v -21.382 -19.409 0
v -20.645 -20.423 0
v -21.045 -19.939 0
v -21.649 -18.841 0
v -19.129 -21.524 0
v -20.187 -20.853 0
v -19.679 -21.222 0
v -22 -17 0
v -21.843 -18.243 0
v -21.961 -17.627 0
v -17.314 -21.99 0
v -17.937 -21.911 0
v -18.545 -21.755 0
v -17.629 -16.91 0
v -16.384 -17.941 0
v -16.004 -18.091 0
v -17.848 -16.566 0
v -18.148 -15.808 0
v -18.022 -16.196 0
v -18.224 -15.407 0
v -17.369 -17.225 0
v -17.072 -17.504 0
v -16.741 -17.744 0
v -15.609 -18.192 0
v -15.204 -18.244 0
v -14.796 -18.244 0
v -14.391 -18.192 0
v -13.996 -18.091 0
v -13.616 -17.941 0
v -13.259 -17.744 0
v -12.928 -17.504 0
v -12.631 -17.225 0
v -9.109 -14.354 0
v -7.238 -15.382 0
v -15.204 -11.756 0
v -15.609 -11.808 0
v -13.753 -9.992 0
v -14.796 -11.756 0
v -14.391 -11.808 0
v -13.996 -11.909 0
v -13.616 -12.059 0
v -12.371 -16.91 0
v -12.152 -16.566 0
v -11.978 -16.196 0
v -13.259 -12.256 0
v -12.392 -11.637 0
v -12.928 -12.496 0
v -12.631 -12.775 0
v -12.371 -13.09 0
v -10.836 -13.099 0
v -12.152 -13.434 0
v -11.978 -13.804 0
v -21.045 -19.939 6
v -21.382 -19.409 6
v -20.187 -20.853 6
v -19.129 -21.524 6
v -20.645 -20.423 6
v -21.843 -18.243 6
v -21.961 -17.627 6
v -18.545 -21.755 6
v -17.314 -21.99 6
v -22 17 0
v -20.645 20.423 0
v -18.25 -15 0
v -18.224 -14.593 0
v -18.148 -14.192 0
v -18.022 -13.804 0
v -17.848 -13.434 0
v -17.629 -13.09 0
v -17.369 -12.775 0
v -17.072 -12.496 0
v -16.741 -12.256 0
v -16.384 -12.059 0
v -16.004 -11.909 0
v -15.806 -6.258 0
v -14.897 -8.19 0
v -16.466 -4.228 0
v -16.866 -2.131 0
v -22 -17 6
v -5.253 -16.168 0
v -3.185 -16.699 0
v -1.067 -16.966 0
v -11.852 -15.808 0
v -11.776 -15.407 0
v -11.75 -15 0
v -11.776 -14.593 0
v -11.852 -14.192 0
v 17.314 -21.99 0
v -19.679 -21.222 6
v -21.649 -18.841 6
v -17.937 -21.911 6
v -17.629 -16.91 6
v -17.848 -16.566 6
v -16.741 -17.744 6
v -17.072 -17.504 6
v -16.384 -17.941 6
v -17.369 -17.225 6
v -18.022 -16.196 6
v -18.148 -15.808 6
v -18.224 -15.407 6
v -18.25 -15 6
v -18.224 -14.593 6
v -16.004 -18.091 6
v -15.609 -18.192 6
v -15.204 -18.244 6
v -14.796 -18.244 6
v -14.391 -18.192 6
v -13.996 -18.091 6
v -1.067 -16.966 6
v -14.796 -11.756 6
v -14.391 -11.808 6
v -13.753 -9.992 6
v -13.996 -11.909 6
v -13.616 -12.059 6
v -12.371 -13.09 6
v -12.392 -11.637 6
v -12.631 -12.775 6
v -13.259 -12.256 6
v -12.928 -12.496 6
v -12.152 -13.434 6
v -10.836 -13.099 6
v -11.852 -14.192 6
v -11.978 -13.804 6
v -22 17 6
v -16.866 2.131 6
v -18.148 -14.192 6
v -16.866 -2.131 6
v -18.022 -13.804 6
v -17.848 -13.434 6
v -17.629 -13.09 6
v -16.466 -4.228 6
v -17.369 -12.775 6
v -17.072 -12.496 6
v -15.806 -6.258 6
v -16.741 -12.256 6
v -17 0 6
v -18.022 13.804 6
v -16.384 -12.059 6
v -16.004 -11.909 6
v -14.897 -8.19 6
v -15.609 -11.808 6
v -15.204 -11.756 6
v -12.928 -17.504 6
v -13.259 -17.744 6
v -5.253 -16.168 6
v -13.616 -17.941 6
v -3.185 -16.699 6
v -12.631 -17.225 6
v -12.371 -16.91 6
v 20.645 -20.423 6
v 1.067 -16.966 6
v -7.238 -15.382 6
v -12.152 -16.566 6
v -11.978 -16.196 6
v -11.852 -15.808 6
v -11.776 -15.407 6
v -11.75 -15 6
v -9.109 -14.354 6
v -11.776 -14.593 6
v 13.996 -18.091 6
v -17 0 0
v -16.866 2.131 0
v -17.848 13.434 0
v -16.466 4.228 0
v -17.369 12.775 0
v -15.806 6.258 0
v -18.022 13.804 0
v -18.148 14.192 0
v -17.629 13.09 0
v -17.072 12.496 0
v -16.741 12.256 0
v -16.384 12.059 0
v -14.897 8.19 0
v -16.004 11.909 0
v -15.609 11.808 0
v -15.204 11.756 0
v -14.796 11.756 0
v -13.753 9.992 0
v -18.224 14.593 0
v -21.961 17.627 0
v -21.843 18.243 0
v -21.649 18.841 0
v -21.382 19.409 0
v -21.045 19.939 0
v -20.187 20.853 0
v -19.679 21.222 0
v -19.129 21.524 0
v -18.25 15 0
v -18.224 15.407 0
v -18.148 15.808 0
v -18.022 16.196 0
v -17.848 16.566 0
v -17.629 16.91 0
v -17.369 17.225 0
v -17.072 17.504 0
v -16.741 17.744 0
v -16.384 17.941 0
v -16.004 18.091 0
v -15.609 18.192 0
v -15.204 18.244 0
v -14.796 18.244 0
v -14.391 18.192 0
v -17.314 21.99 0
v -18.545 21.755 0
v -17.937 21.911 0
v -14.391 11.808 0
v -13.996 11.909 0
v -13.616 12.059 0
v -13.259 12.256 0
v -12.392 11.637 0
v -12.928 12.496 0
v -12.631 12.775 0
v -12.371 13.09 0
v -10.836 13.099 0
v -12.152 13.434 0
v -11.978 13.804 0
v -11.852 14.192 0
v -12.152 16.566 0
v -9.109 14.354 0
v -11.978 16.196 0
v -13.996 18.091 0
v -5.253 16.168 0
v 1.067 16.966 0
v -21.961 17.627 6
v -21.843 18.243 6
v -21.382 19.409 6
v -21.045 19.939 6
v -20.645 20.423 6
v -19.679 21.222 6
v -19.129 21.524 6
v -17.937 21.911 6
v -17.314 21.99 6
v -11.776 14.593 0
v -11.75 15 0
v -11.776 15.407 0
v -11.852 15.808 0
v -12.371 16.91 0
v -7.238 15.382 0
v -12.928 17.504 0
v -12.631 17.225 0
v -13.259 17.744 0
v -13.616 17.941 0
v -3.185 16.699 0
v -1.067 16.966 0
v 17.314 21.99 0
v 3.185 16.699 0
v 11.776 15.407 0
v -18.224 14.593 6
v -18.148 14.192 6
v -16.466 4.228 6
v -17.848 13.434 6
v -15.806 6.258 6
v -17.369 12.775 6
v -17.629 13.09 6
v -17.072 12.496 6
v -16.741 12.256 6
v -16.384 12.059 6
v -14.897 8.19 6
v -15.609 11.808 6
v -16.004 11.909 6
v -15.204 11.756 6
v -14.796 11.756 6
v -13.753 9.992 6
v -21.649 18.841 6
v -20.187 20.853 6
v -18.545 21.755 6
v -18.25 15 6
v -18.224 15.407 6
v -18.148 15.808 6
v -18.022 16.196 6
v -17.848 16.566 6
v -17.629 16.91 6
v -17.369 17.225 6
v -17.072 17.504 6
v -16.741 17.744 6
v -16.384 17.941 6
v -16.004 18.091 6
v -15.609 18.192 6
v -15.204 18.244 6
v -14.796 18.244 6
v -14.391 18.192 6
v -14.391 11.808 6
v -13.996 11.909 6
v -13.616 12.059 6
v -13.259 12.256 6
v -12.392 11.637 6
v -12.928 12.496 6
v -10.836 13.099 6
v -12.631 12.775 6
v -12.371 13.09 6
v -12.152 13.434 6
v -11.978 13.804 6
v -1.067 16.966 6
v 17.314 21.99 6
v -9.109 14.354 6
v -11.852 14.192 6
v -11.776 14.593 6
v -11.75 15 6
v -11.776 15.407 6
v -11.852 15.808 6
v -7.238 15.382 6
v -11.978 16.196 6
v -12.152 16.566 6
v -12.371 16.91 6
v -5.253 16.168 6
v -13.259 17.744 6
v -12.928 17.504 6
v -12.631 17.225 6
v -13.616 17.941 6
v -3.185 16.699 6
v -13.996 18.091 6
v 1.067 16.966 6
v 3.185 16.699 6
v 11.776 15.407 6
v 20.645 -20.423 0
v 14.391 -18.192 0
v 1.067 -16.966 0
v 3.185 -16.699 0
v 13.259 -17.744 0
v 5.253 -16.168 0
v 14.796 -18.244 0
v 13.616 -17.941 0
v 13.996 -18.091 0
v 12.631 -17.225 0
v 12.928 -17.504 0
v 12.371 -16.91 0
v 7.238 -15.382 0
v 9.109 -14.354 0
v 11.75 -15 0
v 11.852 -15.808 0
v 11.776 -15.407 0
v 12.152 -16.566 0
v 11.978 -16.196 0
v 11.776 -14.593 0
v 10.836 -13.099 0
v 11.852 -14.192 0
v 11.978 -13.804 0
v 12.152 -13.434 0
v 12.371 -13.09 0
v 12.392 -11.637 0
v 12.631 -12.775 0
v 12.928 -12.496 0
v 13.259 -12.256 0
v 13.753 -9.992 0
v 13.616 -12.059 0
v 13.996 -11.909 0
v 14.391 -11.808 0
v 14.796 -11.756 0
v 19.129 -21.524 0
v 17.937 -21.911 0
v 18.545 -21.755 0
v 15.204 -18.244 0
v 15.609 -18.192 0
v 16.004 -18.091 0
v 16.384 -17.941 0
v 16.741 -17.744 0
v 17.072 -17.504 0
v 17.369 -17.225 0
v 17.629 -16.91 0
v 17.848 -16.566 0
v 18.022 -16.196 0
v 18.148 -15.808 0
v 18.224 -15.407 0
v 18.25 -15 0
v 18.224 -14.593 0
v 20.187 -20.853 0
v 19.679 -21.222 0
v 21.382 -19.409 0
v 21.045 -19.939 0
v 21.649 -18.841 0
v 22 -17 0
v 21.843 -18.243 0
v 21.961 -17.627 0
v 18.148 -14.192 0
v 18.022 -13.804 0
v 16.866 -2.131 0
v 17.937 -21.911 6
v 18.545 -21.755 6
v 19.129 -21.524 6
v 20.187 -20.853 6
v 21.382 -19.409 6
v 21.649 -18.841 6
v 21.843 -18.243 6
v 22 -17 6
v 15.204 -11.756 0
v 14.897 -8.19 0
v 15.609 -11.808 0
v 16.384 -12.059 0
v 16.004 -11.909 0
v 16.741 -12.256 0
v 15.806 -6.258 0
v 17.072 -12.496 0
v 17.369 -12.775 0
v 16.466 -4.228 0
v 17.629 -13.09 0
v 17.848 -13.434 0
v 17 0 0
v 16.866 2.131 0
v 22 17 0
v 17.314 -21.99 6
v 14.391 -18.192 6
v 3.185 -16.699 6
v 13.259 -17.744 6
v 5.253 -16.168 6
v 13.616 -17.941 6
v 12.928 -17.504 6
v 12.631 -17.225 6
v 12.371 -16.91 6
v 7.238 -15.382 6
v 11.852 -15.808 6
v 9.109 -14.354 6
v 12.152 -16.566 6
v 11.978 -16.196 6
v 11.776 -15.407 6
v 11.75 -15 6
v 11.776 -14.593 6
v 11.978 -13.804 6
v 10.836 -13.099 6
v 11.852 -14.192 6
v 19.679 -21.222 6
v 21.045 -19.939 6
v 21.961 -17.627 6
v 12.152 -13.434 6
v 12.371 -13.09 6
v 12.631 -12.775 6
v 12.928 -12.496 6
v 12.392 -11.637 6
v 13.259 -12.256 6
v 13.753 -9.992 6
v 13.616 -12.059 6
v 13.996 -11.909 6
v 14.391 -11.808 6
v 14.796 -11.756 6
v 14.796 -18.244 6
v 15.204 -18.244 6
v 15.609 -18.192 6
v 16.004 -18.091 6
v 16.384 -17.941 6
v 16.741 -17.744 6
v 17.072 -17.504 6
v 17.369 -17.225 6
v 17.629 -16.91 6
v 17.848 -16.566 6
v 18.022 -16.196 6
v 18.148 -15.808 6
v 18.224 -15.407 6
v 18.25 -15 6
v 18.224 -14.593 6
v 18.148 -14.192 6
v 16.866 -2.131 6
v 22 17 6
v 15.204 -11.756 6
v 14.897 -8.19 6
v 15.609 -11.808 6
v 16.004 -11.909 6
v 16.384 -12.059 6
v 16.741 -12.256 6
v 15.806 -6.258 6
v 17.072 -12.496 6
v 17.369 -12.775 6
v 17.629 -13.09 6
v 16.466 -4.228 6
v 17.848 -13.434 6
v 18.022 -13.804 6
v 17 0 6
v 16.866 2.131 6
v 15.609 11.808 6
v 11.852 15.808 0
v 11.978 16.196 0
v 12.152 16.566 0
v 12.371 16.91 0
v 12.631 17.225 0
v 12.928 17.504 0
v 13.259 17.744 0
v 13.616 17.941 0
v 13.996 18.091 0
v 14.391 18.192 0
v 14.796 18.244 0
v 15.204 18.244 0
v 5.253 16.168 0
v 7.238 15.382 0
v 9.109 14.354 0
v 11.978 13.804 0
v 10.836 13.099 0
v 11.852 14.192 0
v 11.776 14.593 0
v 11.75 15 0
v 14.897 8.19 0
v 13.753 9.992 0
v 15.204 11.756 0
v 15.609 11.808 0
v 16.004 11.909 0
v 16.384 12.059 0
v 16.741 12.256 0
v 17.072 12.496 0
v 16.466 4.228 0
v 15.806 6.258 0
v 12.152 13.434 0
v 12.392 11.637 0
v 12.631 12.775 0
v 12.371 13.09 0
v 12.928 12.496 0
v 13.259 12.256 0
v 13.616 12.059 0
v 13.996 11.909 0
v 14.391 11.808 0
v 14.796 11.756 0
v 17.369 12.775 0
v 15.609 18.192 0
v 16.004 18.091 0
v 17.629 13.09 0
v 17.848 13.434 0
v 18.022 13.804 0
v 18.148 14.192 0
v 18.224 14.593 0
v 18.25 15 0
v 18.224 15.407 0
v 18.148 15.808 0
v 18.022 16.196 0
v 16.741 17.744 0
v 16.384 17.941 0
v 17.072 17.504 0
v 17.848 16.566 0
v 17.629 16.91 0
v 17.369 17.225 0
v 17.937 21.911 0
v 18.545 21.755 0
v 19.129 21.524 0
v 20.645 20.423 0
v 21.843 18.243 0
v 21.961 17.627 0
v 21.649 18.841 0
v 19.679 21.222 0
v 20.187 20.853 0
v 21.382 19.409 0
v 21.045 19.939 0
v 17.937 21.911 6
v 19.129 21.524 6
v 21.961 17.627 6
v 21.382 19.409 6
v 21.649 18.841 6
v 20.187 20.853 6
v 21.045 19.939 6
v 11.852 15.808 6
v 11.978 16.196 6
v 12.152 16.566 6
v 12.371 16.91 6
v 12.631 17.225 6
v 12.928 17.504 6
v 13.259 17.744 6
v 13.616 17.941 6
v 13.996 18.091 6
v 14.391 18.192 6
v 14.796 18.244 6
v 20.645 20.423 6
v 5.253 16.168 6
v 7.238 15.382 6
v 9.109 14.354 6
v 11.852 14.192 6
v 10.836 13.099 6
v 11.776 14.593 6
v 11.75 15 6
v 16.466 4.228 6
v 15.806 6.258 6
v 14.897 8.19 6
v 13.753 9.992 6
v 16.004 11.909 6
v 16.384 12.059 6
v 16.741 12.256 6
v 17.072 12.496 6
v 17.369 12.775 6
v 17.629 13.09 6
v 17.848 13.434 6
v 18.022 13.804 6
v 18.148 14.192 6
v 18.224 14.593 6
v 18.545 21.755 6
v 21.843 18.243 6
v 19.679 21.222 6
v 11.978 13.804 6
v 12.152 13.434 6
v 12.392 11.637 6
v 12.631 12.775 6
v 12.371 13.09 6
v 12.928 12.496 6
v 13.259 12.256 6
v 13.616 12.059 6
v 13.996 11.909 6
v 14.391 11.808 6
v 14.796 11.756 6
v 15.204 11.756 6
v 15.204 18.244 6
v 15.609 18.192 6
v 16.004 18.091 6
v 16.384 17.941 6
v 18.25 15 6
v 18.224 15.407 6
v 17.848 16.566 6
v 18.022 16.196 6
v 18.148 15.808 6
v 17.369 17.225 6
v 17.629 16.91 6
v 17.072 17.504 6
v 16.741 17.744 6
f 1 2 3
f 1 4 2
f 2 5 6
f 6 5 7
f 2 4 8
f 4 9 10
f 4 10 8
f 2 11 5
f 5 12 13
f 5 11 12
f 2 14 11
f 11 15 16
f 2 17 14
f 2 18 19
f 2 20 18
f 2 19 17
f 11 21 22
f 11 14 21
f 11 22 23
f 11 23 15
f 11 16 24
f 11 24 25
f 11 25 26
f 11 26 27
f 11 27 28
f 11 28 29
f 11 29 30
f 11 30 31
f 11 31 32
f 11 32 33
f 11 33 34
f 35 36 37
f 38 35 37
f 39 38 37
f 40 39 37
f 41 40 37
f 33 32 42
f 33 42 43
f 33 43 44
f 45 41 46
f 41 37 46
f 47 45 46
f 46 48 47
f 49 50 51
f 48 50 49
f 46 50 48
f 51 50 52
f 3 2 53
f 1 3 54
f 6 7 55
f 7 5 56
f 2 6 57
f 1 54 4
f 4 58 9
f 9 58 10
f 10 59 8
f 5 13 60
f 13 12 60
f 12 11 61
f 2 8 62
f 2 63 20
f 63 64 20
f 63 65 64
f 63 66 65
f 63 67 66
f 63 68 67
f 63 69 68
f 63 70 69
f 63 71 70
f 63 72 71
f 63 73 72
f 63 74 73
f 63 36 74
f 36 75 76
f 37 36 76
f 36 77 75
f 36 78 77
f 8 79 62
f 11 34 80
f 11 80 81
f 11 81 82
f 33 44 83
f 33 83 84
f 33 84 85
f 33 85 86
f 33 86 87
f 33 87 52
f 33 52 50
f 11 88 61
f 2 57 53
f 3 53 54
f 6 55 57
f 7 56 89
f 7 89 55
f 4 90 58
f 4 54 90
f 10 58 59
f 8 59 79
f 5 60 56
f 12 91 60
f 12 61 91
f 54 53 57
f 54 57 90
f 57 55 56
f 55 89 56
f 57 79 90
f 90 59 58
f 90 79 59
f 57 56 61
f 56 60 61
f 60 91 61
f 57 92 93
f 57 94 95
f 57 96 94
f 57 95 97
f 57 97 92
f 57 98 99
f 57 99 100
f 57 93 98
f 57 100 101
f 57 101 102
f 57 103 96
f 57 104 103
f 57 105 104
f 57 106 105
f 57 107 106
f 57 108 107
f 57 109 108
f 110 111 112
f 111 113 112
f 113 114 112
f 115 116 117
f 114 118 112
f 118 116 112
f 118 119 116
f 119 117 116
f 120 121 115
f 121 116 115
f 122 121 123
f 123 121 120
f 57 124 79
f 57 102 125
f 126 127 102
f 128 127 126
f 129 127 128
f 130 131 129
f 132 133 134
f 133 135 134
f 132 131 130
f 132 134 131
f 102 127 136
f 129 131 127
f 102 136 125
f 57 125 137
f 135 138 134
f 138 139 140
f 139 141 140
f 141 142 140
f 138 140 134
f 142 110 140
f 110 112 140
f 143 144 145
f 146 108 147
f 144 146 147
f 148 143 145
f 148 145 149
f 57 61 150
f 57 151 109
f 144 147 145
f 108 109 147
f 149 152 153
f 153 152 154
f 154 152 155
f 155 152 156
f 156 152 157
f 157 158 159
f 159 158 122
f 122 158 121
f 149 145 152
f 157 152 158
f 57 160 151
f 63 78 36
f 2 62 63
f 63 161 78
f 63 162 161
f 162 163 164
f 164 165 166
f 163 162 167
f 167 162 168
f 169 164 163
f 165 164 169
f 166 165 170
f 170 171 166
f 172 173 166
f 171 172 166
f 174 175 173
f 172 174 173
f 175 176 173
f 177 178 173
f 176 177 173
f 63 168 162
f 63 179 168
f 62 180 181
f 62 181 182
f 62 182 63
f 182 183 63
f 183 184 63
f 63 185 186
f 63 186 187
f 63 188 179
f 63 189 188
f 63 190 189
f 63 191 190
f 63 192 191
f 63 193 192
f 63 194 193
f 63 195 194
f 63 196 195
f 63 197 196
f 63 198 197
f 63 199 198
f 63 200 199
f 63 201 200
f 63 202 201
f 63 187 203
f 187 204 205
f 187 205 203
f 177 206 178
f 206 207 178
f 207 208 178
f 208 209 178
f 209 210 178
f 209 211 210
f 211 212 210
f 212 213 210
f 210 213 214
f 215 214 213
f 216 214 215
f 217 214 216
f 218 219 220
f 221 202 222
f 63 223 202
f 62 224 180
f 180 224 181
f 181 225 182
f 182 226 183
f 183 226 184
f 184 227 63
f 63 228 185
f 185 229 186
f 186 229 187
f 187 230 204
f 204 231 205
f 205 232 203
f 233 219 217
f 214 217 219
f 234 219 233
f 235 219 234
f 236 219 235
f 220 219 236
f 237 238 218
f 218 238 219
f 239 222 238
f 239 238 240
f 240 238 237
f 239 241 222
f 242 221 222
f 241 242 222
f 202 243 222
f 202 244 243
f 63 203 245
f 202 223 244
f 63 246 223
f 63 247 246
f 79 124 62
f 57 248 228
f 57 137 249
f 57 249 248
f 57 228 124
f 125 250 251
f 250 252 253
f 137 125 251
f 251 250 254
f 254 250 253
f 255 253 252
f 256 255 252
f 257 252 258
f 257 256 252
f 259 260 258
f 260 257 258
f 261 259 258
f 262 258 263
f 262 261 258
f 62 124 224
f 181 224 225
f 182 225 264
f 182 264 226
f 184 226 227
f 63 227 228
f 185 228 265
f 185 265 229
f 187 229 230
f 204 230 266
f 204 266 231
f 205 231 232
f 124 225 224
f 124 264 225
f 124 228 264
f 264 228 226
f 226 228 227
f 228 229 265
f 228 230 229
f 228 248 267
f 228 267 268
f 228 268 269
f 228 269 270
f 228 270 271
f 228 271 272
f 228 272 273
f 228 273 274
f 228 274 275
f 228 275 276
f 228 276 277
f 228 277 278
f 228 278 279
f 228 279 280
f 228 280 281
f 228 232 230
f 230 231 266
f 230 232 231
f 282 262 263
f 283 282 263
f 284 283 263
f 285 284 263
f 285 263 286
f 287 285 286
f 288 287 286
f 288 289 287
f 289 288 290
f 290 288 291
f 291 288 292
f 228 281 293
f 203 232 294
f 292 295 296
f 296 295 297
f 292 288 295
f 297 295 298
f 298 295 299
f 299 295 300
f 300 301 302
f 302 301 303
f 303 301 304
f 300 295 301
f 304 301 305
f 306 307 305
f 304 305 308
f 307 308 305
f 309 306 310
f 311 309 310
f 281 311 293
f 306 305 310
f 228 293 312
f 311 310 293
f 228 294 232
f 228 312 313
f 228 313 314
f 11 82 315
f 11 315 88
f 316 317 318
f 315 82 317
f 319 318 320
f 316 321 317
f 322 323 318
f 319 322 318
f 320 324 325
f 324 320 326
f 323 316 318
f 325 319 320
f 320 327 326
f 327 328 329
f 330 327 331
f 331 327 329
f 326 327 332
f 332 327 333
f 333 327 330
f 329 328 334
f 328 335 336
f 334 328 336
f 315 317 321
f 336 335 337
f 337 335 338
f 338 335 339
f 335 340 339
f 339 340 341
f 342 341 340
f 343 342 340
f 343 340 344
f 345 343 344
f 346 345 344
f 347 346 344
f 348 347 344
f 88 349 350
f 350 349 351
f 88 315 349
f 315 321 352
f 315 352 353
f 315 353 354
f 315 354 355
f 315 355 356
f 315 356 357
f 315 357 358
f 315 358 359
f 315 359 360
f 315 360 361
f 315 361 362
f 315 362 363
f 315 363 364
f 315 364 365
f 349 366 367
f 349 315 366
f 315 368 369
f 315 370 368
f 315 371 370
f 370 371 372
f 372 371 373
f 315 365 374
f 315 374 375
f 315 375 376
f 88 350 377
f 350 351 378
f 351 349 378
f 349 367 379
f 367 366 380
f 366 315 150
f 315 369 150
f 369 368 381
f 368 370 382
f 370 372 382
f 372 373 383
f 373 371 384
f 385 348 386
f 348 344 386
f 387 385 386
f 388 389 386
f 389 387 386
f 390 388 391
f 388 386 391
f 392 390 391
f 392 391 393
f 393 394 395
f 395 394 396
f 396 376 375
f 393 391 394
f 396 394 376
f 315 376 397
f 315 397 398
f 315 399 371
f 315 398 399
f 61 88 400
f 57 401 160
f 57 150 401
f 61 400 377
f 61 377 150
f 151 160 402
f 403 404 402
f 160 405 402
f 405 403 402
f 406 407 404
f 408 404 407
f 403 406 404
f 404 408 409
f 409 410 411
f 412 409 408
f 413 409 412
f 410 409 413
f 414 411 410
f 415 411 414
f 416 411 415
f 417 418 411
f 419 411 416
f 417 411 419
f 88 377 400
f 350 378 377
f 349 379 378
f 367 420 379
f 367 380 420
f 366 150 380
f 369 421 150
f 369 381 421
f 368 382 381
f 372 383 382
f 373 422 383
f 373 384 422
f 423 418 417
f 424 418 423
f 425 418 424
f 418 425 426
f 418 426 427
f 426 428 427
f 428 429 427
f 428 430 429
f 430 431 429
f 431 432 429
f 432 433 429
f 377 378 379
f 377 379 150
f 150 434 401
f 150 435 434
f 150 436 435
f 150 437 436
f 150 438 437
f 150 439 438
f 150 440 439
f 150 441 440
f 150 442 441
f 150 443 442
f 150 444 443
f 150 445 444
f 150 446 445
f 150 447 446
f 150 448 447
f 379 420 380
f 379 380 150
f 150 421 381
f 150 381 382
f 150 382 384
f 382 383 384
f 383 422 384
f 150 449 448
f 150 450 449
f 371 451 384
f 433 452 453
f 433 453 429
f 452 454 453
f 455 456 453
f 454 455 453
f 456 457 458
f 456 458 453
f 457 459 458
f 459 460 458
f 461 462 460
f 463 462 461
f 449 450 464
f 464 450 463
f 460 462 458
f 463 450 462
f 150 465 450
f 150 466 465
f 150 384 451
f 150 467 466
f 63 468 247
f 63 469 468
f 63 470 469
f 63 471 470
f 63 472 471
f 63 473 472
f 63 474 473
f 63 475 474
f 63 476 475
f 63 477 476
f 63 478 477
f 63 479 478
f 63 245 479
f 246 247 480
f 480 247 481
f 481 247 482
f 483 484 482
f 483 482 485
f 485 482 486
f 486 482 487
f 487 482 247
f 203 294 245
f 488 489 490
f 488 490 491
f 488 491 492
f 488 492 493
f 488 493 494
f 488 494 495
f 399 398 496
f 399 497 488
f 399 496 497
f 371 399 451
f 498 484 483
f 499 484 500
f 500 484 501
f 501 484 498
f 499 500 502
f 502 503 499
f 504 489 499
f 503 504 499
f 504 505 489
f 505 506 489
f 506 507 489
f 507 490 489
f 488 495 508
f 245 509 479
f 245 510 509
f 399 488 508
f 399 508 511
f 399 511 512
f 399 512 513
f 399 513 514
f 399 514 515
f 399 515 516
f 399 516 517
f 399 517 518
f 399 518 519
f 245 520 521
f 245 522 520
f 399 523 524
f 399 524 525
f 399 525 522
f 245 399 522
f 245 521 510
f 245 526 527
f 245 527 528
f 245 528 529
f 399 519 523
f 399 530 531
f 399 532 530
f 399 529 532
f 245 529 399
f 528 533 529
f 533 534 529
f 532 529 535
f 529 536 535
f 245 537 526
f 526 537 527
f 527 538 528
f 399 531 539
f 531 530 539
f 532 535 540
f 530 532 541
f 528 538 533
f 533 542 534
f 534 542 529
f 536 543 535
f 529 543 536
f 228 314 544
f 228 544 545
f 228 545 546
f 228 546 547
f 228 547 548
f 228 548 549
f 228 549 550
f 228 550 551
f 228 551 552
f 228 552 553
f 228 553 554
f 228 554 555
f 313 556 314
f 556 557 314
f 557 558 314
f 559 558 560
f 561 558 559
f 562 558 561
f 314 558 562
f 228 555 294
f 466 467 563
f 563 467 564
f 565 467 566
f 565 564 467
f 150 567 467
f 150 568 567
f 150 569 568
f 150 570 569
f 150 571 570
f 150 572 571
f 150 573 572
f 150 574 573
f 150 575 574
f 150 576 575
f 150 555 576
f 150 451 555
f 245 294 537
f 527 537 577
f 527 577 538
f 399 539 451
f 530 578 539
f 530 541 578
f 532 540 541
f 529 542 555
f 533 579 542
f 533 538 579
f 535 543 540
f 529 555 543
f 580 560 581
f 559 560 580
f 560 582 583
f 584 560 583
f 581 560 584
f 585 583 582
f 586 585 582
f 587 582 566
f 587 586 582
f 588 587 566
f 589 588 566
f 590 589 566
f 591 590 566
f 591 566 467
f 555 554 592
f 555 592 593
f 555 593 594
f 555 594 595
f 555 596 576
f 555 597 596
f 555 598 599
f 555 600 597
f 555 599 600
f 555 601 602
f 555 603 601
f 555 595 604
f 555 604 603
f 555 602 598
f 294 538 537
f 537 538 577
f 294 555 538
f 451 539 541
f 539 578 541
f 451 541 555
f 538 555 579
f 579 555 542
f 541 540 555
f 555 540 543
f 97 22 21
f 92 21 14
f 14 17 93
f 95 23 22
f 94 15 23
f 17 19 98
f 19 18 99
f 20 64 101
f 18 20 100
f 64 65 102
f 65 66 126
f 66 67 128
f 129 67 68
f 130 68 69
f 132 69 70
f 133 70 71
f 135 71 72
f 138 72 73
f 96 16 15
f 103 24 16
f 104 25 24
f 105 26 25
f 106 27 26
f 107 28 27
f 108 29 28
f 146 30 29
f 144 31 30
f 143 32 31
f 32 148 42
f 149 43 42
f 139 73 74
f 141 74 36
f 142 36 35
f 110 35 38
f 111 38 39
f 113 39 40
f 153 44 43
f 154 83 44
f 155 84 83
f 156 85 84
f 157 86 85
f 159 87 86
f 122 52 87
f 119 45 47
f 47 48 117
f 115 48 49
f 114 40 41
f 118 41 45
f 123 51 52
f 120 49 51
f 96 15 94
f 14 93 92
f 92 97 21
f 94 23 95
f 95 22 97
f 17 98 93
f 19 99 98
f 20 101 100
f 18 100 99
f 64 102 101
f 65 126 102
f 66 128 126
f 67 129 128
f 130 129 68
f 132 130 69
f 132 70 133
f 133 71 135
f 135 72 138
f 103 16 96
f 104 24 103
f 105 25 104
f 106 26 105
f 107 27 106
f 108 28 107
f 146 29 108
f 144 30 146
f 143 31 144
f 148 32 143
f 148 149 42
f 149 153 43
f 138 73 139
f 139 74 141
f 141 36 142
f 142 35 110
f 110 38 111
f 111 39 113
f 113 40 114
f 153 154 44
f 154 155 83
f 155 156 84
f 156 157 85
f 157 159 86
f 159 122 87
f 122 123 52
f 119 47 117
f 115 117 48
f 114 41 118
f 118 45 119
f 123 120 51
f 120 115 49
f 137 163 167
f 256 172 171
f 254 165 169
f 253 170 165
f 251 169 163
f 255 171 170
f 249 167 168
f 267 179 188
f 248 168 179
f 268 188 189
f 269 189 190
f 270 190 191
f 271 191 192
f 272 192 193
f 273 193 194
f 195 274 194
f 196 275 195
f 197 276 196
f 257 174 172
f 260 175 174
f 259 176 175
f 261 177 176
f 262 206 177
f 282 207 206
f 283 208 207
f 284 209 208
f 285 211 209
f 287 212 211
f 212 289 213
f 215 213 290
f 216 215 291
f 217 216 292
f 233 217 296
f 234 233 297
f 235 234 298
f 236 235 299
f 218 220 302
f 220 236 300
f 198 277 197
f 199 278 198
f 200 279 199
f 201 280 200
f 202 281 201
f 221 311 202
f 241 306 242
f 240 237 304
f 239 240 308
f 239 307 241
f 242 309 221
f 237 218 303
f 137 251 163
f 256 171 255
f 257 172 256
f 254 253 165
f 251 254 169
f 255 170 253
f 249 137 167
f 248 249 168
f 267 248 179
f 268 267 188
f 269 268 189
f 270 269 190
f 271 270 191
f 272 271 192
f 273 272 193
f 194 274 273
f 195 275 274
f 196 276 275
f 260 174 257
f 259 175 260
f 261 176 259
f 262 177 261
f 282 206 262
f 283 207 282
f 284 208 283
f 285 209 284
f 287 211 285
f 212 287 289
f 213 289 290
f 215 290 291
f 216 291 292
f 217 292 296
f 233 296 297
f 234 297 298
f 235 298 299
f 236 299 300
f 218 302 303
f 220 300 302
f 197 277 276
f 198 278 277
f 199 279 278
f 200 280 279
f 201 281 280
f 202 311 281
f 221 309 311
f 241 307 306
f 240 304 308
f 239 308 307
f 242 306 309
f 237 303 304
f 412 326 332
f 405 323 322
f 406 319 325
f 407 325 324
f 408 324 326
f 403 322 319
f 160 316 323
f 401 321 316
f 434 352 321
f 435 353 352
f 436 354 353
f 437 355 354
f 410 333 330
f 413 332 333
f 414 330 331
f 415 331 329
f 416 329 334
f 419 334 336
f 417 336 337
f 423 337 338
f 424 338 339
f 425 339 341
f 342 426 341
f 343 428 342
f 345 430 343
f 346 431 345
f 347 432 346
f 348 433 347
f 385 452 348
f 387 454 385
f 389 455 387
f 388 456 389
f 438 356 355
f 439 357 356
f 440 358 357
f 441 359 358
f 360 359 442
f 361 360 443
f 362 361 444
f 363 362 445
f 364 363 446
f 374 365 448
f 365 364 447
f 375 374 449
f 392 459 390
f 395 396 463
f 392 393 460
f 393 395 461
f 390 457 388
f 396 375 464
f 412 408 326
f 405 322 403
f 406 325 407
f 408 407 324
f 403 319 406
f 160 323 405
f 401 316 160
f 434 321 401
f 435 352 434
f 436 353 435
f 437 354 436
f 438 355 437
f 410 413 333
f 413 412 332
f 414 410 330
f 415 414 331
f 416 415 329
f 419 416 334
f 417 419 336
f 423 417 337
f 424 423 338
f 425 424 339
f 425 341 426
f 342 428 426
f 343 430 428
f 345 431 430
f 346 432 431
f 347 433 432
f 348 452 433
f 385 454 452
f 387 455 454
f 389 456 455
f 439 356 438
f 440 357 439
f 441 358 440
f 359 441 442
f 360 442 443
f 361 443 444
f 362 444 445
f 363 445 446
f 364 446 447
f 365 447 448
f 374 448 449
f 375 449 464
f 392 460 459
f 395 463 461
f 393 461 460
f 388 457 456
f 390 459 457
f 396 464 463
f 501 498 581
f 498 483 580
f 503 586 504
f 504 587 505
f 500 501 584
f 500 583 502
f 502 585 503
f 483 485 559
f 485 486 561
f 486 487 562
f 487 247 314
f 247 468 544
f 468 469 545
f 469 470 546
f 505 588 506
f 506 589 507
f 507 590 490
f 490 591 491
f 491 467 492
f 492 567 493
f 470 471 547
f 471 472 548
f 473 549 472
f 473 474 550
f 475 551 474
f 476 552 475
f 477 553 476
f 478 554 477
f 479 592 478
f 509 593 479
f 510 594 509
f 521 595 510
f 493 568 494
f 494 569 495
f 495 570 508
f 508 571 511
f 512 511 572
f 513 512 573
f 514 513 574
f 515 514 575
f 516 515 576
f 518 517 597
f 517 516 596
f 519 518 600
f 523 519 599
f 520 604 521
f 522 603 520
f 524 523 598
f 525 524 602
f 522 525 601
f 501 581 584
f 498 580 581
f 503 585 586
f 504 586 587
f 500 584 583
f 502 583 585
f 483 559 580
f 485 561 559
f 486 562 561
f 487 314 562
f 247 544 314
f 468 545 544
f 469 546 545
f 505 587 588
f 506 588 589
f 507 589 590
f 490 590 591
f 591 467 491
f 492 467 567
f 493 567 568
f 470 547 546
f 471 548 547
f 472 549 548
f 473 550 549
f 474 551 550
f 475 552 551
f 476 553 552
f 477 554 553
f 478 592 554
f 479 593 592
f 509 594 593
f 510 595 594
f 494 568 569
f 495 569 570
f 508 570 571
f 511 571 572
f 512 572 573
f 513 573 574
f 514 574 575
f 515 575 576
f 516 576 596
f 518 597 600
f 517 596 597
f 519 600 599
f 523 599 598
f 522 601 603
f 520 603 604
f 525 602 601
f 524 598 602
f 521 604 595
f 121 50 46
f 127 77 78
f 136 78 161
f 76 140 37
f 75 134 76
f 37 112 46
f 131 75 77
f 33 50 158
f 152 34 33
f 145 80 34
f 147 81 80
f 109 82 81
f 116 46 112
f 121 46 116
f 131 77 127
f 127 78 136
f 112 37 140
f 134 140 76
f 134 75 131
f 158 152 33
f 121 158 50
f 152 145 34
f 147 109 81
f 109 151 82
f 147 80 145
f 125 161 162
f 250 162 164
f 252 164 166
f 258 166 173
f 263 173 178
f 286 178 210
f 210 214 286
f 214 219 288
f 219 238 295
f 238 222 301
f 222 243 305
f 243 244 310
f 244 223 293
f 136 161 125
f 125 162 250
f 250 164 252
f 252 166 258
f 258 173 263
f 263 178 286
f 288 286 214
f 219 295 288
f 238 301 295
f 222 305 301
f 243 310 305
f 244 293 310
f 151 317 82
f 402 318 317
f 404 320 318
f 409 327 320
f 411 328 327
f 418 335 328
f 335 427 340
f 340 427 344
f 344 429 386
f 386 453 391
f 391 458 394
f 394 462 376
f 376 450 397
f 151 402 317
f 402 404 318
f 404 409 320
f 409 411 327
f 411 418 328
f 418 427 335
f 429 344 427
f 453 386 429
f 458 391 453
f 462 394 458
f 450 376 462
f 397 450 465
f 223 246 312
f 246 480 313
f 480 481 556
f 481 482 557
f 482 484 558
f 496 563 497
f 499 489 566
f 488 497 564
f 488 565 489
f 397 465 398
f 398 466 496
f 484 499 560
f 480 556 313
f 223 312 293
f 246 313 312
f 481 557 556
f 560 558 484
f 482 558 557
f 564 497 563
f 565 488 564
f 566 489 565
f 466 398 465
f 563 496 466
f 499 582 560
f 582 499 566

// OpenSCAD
$fn = 50;

difference() {
	union() {
		hull() {
			translate(v = [-17.0, 17.0, 0]) {
				cylinder(h = 6, r = 5);
			}
			translate(v = [17.0, 17.0, 0]) {
				cylinder(h = 6, r = 5);
			}
			translate(v = [-17.0, -17.0, 0]) {
				cylinder(h = 6, r = 5);
			}
			translate(v = [17.0, -17.0, 0]) {
				cylinder(h = 6, r = 5);
			}
		}
	}
	union() {
		translate(v = [-15.0, -15.0, -100.0]) {
			cylinder(h = 200, r = 3.25);
		}
		translate(v = [-15.0, 15.0, -100.0]) {
			cylinder(h = 200, r = 3.25);
		}
		translate(v = [15.0, -15.0, -100.0]) {
			cylinder(h = 200, r = 3.25);
		}
		translate(v = [15.0, 15.0, -100.0]) {
			cylinder(h = 200, r = 3.25);
		}
		translate(v = [-15.0, -15.0, -100.0]) {
			cylinder(h = 200, r = 1.8);
		}
		translate(v = [-15.0, 15.0, -100.0]) {
			cylinder(h = 200, r = 1.8);
		}
		translate(v = [15.0, -15.0, -100.0]) {
			cylinder(h = 200, r = 1.8);
		}
		translate(v = [15.0, 15.0, -100.0]) {
			cylinder(h = 200, r = 1.8);
		}
		cylinder(h = 6, r = 17.0);
	}
}
